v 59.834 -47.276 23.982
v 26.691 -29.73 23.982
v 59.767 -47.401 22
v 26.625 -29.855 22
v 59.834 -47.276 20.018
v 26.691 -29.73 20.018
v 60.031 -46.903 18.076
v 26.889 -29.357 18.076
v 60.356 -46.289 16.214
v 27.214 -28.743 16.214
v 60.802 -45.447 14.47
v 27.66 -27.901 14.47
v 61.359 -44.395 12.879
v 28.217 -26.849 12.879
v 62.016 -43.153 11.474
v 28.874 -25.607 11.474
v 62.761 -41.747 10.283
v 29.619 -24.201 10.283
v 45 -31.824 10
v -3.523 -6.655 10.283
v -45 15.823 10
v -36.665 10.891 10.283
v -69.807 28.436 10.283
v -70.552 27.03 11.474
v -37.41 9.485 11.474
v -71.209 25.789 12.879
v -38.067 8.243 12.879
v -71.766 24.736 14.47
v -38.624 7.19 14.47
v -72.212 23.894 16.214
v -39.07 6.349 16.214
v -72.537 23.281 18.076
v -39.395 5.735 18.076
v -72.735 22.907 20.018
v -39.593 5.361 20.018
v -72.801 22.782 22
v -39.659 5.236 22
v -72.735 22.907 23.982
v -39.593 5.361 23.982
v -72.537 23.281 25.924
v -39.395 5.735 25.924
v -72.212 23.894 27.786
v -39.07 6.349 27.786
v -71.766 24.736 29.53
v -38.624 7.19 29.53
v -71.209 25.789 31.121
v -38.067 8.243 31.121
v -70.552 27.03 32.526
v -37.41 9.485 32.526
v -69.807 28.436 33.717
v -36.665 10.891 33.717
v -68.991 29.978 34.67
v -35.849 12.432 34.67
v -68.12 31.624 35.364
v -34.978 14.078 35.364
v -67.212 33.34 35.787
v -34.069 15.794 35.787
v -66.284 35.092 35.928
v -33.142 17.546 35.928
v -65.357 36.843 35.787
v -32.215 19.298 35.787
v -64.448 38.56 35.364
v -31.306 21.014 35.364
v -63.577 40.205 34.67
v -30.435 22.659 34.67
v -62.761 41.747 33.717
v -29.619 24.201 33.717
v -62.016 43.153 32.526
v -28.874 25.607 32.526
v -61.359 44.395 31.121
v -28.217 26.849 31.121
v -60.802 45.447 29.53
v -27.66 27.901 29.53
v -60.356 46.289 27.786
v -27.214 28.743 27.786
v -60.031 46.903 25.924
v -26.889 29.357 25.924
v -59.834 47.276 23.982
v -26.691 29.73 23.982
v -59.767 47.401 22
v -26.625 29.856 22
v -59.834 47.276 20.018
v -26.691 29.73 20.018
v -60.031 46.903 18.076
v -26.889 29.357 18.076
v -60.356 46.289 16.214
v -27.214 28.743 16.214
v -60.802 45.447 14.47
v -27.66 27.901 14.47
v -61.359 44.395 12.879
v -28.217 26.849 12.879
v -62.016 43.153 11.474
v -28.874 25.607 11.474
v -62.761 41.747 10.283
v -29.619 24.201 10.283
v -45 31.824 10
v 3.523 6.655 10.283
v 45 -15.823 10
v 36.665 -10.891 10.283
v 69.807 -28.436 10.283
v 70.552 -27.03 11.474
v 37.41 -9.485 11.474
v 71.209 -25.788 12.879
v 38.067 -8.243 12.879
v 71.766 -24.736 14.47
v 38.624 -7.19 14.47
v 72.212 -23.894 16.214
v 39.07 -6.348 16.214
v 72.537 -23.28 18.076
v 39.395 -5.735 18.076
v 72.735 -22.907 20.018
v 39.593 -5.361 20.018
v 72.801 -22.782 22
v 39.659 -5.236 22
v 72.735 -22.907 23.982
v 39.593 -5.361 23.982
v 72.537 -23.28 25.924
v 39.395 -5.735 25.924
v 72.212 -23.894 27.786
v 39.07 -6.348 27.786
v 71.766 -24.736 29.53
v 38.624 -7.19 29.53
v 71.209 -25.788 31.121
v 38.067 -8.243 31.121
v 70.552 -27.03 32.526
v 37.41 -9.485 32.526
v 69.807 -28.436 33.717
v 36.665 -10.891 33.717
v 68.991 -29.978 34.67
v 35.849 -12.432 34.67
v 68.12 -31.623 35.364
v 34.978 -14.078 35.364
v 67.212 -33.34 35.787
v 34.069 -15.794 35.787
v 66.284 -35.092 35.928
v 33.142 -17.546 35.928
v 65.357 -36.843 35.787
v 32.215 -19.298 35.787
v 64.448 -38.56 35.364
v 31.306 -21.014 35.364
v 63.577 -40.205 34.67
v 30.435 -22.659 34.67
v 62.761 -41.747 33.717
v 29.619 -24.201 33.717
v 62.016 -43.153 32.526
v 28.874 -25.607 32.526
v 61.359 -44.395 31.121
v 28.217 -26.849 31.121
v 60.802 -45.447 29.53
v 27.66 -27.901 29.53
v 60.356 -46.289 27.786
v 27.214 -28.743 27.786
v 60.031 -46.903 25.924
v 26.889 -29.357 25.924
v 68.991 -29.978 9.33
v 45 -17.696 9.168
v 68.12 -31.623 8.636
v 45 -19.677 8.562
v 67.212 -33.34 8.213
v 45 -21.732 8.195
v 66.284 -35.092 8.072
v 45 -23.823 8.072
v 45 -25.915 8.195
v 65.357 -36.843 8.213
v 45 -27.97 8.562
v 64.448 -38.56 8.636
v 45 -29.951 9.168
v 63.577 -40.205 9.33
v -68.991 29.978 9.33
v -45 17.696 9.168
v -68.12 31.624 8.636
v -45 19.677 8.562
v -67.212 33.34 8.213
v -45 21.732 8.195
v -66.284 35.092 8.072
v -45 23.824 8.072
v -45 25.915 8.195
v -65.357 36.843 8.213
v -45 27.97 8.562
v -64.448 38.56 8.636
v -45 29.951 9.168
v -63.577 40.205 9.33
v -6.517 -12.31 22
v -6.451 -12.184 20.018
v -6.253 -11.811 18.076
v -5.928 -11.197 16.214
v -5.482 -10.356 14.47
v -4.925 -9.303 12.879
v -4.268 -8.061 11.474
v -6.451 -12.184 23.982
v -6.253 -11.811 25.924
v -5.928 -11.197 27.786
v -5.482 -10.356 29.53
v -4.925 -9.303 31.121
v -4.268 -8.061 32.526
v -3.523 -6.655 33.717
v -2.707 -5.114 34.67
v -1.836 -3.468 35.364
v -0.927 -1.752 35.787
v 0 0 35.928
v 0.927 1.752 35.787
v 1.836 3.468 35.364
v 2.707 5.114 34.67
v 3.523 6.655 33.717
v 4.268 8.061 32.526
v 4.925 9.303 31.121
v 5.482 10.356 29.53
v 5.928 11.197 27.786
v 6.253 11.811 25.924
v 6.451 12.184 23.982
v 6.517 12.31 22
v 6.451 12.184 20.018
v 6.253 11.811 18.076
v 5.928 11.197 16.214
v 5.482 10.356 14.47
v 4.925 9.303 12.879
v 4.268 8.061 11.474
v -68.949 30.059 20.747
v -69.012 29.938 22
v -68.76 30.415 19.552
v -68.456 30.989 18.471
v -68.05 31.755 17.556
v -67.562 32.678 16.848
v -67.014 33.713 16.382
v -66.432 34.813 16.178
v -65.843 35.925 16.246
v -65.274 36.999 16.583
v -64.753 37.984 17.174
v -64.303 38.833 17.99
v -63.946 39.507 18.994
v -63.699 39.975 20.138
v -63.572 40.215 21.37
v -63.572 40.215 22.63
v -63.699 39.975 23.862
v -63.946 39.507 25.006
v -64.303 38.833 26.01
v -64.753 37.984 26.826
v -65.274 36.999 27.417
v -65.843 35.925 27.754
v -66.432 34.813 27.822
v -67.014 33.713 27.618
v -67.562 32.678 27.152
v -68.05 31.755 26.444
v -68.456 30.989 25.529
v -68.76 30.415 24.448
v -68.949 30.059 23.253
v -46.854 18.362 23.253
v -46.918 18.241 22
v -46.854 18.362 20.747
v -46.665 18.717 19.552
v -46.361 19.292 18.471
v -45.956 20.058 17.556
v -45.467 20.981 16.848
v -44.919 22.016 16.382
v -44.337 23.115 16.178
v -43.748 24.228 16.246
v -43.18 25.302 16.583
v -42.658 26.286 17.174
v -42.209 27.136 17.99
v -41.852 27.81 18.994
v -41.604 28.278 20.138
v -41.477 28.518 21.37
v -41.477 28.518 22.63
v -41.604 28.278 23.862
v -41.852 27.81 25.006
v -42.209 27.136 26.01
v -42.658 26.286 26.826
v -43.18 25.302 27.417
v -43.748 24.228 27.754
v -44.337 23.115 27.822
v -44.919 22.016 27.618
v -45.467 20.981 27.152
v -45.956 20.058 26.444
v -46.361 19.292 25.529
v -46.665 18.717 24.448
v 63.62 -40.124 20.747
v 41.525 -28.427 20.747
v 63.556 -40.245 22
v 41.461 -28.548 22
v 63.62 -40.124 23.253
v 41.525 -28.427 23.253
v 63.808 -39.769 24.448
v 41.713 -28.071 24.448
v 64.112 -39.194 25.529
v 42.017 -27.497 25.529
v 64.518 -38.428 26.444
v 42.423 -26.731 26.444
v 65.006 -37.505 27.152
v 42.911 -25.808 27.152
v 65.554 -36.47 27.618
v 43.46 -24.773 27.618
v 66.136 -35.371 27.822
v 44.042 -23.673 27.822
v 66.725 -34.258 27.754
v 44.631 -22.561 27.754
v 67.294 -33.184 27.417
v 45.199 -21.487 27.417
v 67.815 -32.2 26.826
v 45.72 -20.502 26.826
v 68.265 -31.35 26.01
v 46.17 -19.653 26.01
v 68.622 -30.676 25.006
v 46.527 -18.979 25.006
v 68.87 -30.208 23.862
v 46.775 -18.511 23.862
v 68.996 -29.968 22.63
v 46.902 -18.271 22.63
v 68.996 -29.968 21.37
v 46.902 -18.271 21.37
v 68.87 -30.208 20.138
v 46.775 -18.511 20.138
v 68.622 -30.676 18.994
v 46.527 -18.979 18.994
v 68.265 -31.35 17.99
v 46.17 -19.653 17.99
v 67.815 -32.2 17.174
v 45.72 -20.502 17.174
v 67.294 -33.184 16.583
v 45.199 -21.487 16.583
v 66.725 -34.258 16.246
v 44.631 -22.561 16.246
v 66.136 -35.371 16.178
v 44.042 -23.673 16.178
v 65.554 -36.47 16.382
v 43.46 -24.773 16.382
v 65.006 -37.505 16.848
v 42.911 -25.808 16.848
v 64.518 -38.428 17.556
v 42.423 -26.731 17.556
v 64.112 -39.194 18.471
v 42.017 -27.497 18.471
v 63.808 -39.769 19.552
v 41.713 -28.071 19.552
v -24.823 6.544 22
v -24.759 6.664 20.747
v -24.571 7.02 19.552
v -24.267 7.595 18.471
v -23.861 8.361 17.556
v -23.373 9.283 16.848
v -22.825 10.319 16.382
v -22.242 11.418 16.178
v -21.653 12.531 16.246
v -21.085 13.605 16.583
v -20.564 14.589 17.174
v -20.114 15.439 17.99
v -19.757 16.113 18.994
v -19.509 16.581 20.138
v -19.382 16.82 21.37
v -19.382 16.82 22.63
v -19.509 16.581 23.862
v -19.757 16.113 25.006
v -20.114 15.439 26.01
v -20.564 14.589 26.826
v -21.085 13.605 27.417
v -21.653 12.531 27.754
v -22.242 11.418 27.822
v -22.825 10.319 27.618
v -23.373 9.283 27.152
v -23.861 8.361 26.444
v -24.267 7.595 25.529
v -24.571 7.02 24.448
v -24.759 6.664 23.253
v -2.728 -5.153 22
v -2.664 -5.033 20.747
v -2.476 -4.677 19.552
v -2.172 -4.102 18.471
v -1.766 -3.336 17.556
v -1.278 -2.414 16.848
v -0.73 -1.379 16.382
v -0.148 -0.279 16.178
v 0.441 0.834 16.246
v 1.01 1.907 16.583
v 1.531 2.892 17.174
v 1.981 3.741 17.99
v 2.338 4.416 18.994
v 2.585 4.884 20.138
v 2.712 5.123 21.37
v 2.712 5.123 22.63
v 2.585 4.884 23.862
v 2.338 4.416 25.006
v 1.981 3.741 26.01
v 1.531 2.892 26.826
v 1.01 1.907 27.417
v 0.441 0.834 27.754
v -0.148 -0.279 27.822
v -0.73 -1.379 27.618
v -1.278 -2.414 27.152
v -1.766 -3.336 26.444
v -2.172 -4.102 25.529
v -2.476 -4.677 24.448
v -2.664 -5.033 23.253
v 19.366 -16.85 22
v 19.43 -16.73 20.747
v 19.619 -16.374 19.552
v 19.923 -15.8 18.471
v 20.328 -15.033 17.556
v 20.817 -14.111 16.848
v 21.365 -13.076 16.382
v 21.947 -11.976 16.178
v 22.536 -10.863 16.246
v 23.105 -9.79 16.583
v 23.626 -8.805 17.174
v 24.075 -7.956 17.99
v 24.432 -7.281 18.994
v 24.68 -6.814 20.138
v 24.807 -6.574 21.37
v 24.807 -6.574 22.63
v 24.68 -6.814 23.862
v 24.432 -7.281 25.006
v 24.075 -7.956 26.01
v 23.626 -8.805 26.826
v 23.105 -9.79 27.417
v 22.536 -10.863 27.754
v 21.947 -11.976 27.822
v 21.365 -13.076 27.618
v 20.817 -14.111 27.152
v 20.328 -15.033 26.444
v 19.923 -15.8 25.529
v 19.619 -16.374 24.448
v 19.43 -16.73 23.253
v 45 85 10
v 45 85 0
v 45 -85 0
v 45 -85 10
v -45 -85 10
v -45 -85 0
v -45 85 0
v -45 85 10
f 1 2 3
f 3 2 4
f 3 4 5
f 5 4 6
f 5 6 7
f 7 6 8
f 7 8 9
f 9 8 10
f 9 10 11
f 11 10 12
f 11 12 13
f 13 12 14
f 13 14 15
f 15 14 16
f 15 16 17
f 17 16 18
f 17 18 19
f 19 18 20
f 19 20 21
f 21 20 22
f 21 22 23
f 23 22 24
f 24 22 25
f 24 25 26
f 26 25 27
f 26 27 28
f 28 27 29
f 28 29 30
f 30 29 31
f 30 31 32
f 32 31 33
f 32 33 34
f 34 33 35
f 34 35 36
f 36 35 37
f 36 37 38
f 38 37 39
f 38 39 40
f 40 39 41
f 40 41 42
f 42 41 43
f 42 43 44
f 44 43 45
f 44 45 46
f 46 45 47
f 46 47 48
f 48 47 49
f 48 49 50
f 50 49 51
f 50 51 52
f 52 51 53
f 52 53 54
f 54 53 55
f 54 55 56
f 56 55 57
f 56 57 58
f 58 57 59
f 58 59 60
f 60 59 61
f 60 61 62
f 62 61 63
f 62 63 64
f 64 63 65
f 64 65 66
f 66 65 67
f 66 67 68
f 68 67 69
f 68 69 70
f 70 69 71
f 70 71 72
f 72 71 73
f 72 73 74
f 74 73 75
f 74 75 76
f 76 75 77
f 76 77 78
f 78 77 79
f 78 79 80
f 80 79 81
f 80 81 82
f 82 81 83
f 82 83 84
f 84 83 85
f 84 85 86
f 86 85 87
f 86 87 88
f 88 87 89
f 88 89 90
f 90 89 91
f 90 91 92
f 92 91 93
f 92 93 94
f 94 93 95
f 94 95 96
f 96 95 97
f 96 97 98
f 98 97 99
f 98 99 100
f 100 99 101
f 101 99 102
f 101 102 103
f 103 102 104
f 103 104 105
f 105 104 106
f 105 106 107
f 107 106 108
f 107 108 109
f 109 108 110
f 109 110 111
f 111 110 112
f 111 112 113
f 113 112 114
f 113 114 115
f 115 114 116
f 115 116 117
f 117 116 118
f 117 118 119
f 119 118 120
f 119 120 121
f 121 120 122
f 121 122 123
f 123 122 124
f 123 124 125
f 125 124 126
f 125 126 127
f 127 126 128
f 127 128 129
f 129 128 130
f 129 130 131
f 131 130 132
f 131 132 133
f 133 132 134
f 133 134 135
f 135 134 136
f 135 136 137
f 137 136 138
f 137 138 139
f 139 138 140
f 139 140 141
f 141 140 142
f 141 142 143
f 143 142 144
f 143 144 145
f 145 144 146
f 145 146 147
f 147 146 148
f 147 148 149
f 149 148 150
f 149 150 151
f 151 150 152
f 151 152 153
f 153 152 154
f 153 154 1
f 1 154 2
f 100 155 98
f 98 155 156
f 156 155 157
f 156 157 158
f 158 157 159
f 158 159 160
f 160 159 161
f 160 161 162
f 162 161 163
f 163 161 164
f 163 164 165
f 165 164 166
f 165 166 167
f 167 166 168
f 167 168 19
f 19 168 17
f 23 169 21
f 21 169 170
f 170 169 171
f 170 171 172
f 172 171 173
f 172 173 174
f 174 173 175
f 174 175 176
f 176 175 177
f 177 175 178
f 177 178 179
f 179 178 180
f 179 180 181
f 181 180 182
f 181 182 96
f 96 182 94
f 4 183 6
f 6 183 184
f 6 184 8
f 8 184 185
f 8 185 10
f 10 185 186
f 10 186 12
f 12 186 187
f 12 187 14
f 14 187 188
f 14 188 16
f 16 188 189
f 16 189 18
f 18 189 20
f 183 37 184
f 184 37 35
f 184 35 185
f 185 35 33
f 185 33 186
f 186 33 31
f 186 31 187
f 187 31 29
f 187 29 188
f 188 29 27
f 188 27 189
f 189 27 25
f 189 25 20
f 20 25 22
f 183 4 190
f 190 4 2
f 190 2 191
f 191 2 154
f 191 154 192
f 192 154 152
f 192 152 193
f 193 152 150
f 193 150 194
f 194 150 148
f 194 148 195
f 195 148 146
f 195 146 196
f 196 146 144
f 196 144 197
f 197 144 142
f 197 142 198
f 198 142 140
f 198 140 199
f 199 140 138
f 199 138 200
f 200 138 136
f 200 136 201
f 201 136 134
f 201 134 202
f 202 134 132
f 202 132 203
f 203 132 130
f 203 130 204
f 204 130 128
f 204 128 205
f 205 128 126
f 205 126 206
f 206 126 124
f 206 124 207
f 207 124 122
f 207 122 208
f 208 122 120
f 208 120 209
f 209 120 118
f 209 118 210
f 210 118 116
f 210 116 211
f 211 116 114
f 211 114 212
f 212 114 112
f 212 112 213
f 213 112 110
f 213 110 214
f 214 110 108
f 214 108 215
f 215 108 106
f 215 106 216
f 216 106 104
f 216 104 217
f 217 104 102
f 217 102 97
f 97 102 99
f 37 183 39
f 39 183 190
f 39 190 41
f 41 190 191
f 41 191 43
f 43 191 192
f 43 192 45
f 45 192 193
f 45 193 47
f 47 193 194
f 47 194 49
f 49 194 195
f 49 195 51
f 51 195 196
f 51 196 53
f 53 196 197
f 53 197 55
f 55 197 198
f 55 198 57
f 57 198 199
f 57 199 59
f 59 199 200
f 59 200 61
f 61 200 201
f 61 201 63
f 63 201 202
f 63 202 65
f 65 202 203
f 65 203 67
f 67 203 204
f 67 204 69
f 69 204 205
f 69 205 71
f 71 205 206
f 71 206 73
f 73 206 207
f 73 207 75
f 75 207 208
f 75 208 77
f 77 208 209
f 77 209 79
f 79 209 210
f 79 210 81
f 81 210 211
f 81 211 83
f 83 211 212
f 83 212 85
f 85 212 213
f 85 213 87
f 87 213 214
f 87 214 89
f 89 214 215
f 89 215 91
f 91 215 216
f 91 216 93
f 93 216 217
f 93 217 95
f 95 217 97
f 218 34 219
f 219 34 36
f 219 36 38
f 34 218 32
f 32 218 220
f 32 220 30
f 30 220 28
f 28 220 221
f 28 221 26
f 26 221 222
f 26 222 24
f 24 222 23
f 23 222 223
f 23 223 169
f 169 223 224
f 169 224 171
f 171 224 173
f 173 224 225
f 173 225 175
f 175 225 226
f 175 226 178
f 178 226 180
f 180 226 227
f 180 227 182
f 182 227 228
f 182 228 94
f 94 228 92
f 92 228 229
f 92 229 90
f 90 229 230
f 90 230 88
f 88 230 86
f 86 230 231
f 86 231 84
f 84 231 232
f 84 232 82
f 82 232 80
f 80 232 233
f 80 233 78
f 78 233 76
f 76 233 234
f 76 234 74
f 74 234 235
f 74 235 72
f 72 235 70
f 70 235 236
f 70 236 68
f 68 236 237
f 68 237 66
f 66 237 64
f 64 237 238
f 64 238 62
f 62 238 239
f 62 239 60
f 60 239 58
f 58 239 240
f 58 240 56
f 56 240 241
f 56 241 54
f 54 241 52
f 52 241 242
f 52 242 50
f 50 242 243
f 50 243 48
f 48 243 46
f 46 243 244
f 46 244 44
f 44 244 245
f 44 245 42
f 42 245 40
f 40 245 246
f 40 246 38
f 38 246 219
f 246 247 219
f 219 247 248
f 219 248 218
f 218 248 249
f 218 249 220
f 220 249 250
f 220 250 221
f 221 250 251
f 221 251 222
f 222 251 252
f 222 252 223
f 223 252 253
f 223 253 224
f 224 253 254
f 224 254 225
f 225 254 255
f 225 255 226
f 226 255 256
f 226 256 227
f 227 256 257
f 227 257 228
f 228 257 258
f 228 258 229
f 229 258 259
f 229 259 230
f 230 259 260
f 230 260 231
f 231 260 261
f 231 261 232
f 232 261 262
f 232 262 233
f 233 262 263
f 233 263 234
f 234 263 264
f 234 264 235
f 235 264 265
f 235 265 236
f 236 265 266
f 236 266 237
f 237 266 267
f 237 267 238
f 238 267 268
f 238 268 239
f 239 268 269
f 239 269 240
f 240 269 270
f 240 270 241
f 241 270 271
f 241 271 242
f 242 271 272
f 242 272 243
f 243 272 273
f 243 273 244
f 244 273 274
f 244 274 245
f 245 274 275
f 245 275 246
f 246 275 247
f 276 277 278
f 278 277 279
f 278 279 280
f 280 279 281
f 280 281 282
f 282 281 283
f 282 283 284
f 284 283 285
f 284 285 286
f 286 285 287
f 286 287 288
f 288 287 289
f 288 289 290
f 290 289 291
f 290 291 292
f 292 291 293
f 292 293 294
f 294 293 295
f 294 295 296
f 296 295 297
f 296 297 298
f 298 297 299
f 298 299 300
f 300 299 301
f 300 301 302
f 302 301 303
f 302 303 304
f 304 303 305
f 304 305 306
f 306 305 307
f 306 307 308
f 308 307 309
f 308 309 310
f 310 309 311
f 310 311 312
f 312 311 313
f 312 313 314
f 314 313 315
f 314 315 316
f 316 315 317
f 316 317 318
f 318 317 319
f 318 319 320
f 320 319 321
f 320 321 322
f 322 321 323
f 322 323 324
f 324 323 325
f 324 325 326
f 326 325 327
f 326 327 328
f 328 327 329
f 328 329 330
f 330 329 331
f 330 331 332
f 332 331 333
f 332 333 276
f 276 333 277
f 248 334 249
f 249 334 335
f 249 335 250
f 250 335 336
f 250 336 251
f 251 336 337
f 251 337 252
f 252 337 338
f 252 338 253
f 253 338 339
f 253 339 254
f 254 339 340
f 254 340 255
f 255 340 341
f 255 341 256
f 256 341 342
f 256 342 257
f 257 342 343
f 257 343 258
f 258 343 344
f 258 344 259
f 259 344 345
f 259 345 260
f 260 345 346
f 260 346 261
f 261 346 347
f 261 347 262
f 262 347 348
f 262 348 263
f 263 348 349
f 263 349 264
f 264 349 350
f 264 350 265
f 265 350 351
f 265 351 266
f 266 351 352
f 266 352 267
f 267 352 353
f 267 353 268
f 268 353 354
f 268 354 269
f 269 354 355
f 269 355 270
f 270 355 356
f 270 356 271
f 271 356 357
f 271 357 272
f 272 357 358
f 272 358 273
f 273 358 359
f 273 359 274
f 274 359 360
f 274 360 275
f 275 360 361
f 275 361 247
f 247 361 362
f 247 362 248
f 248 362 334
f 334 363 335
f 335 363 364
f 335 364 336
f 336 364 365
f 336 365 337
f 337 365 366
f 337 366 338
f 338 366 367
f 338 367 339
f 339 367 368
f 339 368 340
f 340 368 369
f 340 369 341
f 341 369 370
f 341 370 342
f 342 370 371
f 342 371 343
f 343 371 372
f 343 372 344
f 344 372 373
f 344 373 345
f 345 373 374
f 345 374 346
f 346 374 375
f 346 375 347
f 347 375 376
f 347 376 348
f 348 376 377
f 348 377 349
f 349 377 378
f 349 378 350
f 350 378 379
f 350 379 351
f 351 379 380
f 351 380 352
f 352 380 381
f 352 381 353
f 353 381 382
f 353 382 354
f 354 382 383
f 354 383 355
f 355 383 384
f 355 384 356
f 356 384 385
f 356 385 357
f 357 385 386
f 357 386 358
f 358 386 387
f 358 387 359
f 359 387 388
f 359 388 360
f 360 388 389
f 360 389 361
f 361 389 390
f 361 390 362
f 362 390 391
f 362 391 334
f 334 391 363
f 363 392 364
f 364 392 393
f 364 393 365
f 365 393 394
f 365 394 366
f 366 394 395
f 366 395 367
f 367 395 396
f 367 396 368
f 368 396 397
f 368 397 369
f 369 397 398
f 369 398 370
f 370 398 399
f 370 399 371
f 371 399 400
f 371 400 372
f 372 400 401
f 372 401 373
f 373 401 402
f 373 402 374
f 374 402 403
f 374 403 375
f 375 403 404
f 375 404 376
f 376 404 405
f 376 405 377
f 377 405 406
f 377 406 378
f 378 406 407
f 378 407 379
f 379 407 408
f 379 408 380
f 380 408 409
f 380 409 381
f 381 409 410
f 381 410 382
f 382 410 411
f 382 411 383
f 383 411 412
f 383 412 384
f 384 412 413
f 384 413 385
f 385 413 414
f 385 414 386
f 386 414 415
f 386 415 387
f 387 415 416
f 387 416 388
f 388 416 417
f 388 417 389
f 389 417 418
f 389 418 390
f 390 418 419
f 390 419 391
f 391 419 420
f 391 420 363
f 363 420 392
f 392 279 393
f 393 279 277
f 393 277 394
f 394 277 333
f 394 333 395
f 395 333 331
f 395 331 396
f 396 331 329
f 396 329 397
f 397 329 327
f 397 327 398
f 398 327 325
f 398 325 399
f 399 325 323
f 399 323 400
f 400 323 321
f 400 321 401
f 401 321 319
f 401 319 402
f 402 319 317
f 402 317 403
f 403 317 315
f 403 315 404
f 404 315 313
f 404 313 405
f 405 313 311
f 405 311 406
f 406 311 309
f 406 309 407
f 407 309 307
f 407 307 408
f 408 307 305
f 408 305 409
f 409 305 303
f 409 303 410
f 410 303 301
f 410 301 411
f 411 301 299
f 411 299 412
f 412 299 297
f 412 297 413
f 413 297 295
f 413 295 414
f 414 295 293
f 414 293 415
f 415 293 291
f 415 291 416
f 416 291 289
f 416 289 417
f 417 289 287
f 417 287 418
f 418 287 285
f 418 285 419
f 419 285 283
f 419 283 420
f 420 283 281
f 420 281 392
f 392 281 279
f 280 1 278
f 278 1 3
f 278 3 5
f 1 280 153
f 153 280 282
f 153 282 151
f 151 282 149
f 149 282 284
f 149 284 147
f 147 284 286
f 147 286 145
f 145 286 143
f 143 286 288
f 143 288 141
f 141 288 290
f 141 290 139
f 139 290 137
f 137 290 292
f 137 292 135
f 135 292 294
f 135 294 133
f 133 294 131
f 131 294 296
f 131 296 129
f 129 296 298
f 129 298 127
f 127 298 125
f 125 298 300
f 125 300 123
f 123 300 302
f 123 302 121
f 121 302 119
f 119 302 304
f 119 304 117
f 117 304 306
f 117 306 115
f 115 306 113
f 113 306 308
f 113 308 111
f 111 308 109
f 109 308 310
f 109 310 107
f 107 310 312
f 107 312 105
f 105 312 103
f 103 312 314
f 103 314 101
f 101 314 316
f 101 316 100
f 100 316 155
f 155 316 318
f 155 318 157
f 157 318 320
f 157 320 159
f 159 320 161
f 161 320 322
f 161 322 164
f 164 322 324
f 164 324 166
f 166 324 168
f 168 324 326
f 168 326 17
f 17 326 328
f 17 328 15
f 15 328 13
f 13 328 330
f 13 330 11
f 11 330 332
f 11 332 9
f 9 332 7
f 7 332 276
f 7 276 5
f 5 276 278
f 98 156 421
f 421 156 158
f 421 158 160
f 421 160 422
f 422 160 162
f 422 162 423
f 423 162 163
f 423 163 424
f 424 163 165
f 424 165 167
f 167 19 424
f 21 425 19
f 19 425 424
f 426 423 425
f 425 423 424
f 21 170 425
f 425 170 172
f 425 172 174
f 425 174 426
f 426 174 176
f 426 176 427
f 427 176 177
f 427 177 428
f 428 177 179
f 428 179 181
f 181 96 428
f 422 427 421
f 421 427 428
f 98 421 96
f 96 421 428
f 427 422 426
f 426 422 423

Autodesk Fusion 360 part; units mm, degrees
sketch "Rectangle" plane through (0, 0, 0) normal (0, 0, 1) x (1, 0, 0)
  line L0 (45, -85) -> (-45, -85)
  line L1 (-45, -85) -> (-45, 85)
  line L2 (-45, 85) -> (45, 85)
  line L3 (45, 85) -> (45, -85)
  line L4 (45, -85) -> (-45, 85) construction
  line L5 (-45, -85) -> (45, 85) construction
extrude "Extrude1" add sketch "Rectangle" along normal blind 10
sketch "Diagonals" plane through (0, 0, 10) normal (0, 0, 1) x (-1, 0, 0)
  line L0 (-45, -85) -> (45, -85)
  line L1 (45, -85) -> (45, 85)
  line L2 (45, 85) -> (-45, 85)
  line L3 (-45, 85) -> (-45, -85)
  line L4 (45, -85) -> (-45, 85) construction
  line L5 (-45, -85) -> (45, 85) construction
  line L6 (45, -23.8236) -> (-45, 23.8235)
  dimension "d3" = 90
ref_plane "WorkPlane1" through (0, 0, 10) normal (0.8838, -0.4679, 0) x (0.4679, 0.8838, 0)
sketch "Circles" plane through (0, 0, 10) normal (0.8838, -0.4679, 0) x (0.4679, 0.8838, 0)
  circle A0 centre (0, 12) radius 5.831
  circle A1 centre (0, 12) radius 13.9284
extrude "Extrude2" add sketch "Circles" along normal mid plane 150
